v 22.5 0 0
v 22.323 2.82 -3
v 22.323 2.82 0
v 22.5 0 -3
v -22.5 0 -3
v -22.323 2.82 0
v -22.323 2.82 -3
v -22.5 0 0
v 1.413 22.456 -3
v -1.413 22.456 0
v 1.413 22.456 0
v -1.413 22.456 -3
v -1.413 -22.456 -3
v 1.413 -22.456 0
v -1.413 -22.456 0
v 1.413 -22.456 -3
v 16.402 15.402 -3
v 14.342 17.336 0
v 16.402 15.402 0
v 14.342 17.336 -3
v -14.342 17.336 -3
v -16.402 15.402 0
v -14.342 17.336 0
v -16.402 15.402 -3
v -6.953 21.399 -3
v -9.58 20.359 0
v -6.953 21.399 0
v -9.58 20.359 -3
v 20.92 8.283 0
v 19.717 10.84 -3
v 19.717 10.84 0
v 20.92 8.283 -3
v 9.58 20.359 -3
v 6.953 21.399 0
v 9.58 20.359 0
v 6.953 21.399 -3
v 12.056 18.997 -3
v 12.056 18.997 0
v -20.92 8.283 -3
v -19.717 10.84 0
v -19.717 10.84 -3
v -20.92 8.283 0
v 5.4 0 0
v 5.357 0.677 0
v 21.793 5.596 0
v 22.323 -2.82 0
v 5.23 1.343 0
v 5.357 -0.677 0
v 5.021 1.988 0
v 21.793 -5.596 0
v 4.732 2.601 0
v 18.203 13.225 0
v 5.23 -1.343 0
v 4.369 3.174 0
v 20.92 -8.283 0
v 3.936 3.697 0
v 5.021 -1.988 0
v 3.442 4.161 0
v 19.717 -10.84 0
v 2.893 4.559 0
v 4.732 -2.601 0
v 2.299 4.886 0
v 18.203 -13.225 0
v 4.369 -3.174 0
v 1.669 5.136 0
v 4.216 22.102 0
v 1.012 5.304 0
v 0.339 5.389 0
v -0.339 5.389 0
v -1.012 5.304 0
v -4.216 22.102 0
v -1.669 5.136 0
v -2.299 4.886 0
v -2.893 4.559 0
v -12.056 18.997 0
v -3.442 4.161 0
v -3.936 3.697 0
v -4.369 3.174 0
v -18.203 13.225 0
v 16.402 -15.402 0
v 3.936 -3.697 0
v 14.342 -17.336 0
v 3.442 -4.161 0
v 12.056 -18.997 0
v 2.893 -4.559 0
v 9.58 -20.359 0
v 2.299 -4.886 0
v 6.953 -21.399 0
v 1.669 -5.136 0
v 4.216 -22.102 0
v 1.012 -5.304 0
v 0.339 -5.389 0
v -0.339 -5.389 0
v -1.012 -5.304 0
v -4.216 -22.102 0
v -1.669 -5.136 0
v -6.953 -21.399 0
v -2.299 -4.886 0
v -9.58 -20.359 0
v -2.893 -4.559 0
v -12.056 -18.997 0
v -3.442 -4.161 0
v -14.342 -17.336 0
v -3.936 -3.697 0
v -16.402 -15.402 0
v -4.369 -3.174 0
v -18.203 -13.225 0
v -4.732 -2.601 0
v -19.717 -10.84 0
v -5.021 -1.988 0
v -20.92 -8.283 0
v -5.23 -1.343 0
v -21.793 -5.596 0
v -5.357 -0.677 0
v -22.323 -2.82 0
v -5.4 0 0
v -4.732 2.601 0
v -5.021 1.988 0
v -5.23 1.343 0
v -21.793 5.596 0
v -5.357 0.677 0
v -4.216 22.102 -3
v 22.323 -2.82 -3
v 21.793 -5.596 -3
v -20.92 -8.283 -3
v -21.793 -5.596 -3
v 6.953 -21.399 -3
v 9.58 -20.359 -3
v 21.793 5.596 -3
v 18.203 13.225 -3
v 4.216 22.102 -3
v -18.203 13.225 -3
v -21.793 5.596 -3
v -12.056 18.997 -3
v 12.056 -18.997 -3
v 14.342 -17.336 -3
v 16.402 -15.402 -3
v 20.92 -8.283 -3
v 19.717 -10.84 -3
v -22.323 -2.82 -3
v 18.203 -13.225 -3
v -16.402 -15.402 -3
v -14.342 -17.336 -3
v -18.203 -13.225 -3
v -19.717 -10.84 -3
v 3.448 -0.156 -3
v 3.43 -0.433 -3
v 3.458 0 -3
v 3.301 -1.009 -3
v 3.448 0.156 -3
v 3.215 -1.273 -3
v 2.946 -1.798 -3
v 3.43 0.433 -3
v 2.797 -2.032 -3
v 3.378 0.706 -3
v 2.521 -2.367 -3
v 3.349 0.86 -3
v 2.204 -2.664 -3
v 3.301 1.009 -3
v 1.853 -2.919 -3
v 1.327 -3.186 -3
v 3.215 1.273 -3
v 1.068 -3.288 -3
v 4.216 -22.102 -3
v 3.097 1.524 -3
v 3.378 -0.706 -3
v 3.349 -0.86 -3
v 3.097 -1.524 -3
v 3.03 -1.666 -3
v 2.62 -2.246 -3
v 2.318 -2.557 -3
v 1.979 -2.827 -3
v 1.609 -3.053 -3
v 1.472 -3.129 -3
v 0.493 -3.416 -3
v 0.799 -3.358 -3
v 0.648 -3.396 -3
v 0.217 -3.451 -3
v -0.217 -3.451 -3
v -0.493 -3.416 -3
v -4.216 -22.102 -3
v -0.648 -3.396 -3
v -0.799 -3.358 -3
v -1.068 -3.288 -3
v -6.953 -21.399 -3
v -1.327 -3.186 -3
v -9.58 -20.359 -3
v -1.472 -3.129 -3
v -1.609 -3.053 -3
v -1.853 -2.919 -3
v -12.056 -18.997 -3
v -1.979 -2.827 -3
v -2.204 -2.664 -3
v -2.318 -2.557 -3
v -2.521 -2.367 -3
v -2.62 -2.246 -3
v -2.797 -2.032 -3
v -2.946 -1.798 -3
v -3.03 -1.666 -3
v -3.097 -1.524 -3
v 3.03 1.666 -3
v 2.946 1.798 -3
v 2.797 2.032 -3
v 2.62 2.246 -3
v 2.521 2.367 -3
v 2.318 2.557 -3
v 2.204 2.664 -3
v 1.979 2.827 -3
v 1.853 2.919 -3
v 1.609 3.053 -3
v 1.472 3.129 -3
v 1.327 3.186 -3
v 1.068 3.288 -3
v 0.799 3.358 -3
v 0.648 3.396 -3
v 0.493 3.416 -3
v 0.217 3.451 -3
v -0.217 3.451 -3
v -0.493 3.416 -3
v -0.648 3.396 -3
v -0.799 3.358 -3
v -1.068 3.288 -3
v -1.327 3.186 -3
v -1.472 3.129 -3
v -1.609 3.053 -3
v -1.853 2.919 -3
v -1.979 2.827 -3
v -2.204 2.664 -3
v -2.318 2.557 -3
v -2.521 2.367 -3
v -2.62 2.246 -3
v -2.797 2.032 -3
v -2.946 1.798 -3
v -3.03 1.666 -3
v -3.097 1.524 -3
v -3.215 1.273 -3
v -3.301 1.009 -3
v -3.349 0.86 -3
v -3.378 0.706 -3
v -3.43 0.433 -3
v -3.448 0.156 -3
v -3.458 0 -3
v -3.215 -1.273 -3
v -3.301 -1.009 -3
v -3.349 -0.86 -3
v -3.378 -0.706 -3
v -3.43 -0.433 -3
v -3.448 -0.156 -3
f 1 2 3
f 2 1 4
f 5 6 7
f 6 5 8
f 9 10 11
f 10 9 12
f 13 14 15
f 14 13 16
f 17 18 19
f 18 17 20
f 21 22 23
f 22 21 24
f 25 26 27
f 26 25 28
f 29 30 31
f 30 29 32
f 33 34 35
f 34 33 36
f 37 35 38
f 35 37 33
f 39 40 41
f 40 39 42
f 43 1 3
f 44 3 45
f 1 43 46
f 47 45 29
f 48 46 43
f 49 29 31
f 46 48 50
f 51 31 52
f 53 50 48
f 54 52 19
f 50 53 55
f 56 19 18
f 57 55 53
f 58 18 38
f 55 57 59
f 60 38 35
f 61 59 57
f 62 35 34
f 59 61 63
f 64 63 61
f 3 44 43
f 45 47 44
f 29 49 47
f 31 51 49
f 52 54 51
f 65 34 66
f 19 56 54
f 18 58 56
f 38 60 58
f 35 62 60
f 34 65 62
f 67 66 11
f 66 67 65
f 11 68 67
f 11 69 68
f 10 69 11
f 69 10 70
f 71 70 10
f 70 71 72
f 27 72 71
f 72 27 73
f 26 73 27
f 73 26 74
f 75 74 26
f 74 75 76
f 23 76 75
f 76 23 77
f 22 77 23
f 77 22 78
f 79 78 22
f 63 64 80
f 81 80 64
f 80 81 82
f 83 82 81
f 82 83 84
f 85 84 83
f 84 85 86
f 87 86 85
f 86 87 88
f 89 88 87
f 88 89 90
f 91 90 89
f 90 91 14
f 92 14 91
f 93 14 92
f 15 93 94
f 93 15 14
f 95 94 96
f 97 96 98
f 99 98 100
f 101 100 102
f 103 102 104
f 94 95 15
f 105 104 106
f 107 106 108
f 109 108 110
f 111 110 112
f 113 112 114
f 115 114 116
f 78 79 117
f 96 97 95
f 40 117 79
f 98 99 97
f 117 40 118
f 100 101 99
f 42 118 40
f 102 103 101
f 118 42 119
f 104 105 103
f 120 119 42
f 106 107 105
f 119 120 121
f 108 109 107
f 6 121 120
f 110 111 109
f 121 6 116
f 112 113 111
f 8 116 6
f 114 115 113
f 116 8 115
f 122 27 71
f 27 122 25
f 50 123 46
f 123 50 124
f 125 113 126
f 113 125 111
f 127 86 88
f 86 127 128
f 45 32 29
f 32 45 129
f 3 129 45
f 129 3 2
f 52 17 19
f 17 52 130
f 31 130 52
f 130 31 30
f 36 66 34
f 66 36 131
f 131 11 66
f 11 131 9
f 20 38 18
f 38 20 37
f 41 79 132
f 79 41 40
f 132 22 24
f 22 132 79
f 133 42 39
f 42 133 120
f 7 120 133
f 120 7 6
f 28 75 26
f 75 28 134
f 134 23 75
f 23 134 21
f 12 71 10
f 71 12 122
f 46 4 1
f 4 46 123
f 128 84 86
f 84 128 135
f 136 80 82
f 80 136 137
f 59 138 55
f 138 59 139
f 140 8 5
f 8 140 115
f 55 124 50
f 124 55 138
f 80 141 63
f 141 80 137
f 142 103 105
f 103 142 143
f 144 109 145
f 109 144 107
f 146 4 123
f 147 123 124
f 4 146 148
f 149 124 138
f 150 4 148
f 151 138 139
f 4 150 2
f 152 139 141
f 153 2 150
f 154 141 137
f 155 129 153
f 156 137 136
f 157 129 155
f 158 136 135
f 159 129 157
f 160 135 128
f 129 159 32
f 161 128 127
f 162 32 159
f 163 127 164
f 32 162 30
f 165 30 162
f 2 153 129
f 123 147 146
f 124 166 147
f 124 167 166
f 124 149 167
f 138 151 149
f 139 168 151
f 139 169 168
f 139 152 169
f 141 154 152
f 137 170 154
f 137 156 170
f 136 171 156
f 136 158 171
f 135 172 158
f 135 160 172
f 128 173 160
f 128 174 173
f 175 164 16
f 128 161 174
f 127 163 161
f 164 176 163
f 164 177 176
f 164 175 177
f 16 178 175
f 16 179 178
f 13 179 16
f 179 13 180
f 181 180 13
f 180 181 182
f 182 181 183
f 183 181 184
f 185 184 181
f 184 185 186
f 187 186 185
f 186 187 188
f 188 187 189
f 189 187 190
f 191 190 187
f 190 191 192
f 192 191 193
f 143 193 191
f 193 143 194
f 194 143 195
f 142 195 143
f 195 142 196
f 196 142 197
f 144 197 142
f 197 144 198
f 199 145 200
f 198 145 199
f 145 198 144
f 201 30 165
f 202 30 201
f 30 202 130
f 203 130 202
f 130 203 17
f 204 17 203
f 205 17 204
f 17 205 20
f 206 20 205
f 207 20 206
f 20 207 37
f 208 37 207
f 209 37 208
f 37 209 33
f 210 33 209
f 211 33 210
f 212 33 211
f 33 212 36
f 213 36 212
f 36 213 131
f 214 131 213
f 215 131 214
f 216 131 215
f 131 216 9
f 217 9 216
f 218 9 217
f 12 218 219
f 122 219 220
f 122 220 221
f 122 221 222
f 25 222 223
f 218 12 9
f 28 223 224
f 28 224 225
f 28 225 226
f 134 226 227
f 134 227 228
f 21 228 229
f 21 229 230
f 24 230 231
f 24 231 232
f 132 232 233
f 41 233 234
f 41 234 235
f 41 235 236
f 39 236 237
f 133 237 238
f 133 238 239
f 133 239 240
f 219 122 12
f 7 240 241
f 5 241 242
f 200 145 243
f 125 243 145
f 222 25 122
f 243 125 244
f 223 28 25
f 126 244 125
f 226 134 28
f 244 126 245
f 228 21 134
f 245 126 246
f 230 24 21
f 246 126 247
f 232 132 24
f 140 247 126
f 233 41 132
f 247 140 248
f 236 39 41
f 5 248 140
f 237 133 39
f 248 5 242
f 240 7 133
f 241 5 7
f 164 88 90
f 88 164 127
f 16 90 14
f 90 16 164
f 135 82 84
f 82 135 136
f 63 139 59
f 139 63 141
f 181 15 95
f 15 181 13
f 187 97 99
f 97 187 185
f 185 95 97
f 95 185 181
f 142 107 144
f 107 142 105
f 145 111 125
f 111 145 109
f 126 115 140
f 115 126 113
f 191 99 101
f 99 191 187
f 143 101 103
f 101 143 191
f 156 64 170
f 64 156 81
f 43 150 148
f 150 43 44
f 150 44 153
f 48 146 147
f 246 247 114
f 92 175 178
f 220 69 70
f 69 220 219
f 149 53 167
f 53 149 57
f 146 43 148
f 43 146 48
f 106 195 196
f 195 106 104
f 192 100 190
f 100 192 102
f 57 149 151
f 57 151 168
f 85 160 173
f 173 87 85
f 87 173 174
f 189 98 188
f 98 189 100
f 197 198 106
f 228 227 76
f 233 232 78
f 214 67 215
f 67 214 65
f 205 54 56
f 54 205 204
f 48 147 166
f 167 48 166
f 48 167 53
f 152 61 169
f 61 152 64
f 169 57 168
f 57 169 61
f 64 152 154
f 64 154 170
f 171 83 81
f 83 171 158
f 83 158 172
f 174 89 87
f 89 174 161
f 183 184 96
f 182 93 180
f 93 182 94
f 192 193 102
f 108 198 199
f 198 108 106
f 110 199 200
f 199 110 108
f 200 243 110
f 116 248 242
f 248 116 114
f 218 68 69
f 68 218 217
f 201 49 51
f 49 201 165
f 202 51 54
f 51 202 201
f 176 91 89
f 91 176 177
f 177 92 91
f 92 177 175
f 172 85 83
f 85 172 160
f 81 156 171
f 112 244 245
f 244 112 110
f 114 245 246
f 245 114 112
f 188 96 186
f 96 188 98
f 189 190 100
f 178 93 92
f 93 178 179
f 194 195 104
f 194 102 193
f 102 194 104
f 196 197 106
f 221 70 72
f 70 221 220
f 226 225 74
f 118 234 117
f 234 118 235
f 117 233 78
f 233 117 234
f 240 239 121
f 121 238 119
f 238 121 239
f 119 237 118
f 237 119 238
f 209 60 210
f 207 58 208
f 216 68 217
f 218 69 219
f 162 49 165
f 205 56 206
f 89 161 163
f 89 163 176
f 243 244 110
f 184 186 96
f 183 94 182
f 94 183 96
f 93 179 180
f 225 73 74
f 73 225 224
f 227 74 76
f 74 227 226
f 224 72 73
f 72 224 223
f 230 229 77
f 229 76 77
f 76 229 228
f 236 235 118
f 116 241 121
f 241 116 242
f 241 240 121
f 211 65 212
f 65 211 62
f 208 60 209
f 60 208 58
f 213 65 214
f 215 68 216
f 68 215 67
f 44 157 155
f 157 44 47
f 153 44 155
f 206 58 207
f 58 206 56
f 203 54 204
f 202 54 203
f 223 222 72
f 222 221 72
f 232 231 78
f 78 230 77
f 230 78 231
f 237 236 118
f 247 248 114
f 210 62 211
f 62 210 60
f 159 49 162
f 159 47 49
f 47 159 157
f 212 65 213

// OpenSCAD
$fn = 50;


difference() {
	union() {
		translate(v = [0, 0, -3.0000000000]) {
			cylinder(h = 3, r = 22.5000000000);
		}
		translate(v = [0, 0, -6.0000000000]) {
			cylinder(h = 6, r = 2.8750000000);
		}
	}
	union() {
		translate(v = [0, 0, 0]) {
			rotate(a = [0, 0, 0]) {
				difference() {
					union() {
						translate(v = [0, 0, -6.0000000000]) {
							cylinder(h = 6, r = 2.6000000000);
						}
						translate(v = [0, 0, -3.9000000000]) {
							cylinder(h = 3.9000000000, r1 = 2.8750000000, r2 = 5.4000000000);
						}
						translate(v = [0, 0, -6.0000000000]) {
							cylinder(h = 6, r = 2.8750000000);
						}
						translate(v = [0, 0, -6.0000000000]) {
							cylinder(h = 6, r = 2.6000000000);
						}
					}
					union();
				}
			}
		}
	}
}
